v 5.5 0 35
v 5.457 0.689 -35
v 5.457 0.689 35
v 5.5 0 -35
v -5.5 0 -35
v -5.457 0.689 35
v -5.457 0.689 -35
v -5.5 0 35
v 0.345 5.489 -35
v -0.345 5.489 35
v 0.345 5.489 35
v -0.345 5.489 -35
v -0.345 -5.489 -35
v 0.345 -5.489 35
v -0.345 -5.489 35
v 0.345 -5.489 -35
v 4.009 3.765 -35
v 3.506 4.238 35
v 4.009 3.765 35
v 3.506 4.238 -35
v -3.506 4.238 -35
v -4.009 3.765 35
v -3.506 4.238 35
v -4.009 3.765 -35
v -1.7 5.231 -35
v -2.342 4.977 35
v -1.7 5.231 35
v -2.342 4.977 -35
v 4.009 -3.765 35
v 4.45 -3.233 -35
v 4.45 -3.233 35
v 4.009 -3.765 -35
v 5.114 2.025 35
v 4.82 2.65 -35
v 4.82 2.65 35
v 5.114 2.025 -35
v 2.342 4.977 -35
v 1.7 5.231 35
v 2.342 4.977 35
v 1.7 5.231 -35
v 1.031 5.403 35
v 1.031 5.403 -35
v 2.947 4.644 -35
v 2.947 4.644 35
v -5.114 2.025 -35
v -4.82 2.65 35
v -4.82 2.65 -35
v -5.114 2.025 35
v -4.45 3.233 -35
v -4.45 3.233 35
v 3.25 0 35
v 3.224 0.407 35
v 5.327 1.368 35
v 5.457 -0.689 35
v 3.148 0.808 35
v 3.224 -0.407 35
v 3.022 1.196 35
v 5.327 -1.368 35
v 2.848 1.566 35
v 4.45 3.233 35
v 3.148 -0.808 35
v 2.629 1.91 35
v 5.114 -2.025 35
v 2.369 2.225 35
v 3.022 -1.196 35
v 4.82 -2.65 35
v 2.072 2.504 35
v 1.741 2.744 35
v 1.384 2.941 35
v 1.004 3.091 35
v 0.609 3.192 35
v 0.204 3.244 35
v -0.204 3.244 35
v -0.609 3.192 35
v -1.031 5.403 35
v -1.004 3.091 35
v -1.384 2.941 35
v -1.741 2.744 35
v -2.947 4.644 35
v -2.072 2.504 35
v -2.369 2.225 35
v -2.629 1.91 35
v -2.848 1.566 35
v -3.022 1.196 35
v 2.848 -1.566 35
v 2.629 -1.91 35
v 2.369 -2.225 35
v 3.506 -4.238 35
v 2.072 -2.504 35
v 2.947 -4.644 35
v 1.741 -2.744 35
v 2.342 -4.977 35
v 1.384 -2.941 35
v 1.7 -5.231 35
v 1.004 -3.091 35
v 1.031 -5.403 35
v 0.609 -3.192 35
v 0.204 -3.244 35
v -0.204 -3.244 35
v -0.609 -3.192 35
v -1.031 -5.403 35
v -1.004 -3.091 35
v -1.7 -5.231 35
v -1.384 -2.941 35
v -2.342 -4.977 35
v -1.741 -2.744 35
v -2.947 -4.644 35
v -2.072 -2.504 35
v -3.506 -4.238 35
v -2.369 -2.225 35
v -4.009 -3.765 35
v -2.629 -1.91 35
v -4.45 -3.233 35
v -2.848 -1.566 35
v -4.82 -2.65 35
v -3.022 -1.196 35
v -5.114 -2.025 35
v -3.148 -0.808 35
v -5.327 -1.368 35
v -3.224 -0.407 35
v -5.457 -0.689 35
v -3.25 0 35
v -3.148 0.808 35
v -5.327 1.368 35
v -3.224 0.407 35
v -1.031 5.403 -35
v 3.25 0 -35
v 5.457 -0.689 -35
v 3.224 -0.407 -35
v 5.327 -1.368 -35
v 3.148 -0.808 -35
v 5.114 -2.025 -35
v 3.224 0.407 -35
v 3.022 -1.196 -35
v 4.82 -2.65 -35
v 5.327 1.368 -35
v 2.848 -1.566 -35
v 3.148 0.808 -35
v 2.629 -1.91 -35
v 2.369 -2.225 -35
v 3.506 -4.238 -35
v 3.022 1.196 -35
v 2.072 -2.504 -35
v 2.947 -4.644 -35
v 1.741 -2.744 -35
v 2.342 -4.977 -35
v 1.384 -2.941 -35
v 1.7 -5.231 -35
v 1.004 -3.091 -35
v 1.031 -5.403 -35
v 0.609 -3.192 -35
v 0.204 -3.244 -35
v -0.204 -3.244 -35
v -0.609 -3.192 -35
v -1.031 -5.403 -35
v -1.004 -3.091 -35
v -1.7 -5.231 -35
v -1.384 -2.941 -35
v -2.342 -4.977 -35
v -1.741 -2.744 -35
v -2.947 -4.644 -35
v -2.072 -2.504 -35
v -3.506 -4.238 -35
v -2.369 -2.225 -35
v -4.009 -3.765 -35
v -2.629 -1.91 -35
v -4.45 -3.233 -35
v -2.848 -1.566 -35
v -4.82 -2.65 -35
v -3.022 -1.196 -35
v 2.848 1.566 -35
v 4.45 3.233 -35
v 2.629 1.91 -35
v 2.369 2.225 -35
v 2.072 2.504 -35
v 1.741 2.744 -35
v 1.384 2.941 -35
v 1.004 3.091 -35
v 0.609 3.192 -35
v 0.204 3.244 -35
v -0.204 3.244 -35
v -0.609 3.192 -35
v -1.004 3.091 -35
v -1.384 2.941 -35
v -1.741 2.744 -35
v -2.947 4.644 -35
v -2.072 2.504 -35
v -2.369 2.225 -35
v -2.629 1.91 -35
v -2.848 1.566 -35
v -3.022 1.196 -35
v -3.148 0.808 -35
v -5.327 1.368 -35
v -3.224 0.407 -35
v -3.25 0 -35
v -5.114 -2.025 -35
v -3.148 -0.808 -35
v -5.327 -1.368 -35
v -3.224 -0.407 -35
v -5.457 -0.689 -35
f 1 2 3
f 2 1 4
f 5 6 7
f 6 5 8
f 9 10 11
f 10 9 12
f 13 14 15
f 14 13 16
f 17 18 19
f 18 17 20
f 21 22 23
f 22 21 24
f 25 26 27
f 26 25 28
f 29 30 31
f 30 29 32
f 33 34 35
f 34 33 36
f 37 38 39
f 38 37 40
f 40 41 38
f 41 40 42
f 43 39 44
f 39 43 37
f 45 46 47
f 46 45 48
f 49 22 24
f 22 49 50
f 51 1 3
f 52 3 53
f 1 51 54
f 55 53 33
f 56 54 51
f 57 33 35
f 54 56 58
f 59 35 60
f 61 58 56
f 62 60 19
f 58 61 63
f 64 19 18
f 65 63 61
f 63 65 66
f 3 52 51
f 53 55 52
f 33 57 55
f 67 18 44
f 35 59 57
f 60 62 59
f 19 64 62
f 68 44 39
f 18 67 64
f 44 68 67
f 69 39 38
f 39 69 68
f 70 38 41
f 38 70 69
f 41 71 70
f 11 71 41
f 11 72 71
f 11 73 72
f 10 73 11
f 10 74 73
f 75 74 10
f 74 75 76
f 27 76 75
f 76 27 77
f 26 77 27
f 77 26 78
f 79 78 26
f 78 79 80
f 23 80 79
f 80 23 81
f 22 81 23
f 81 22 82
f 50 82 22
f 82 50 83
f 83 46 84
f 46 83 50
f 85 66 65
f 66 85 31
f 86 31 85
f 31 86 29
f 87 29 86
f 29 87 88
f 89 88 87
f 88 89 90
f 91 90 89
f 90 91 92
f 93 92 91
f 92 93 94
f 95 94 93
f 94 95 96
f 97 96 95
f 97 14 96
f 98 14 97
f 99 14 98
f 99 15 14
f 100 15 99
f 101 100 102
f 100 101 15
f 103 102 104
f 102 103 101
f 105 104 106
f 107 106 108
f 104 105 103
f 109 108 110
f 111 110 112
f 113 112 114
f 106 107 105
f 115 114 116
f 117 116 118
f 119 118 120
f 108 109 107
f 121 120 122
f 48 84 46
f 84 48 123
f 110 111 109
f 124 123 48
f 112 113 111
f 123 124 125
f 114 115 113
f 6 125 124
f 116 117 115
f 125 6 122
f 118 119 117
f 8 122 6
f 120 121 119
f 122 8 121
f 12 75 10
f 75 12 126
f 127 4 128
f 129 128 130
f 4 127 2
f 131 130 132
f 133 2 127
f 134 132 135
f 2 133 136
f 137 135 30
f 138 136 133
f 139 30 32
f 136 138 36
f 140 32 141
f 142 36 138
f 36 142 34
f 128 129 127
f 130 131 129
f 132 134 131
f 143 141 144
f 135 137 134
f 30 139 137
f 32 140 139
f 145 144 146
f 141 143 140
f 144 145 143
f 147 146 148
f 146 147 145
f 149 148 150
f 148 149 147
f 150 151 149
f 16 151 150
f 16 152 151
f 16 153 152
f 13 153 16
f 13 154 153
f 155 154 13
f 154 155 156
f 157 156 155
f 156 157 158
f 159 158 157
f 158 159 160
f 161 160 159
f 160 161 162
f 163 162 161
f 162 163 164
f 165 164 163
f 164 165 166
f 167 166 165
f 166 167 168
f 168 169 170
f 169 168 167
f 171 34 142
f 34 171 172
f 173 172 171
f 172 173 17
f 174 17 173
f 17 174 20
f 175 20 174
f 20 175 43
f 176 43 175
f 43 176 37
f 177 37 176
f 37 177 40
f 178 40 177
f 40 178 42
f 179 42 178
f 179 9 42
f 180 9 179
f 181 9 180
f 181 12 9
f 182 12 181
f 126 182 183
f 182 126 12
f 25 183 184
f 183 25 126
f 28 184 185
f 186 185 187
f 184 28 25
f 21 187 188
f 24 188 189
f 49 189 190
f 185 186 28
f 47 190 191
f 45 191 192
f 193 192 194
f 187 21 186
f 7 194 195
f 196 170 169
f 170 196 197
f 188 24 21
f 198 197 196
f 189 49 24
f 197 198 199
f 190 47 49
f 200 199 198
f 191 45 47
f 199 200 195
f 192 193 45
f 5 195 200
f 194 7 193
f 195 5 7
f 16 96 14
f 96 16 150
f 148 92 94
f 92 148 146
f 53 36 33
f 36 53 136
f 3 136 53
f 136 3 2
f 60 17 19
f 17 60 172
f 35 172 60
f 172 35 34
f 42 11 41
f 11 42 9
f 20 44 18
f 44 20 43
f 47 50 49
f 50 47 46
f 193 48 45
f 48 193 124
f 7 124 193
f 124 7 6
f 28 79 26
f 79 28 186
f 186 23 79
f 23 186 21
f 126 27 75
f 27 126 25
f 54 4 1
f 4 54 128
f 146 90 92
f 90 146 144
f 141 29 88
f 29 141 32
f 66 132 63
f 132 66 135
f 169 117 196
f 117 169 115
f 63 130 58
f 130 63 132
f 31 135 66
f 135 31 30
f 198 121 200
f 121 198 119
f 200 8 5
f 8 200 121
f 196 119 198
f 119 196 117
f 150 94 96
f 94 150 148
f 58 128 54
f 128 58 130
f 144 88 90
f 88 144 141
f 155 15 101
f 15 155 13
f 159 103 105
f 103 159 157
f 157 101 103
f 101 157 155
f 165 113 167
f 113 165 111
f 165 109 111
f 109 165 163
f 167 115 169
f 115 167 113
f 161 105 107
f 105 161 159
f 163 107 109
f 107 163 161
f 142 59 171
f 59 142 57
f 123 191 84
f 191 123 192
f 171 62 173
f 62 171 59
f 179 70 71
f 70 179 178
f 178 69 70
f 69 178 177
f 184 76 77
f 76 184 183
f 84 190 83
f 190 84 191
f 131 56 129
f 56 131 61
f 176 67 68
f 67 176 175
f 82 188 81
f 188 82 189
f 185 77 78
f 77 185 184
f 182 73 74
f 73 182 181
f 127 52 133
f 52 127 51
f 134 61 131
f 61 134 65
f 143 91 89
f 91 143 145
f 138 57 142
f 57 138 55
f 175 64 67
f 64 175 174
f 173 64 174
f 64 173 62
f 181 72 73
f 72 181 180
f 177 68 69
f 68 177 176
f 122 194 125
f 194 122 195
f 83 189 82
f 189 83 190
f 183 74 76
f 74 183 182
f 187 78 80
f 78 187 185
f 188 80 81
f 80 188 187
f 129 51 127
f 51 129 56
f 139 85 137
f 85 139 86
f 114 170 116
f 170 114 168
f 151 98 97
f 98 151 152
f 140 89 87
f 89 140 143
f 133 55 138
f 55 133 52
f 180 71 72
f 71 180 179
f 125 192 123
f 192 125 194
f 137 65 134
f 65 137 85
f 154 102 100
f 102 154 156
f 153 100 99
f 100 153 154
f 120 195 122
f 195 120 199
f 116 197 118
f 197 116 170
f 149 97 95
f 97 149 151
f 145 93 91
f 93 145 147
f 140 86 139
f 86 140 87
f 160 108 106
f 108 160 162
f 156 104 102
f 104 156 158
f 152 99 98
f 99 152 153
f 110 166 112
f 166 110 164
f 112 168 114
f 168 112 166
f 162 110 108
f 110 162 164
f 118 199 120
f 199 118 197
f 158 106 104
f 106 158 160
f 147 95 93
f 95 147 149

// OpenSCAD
$fn = 50;


difference() {
	union() {
		translate(v = [0, 0, -35.0000000000]) {
			cylinder(h = 70, r = 5.5000000000);
		}
	}
	union() {
		translate(v = [0, 0, -100.0000000000]) {
			cylinder(h = 200, r = 3.2500000000);
		}
	}
}
